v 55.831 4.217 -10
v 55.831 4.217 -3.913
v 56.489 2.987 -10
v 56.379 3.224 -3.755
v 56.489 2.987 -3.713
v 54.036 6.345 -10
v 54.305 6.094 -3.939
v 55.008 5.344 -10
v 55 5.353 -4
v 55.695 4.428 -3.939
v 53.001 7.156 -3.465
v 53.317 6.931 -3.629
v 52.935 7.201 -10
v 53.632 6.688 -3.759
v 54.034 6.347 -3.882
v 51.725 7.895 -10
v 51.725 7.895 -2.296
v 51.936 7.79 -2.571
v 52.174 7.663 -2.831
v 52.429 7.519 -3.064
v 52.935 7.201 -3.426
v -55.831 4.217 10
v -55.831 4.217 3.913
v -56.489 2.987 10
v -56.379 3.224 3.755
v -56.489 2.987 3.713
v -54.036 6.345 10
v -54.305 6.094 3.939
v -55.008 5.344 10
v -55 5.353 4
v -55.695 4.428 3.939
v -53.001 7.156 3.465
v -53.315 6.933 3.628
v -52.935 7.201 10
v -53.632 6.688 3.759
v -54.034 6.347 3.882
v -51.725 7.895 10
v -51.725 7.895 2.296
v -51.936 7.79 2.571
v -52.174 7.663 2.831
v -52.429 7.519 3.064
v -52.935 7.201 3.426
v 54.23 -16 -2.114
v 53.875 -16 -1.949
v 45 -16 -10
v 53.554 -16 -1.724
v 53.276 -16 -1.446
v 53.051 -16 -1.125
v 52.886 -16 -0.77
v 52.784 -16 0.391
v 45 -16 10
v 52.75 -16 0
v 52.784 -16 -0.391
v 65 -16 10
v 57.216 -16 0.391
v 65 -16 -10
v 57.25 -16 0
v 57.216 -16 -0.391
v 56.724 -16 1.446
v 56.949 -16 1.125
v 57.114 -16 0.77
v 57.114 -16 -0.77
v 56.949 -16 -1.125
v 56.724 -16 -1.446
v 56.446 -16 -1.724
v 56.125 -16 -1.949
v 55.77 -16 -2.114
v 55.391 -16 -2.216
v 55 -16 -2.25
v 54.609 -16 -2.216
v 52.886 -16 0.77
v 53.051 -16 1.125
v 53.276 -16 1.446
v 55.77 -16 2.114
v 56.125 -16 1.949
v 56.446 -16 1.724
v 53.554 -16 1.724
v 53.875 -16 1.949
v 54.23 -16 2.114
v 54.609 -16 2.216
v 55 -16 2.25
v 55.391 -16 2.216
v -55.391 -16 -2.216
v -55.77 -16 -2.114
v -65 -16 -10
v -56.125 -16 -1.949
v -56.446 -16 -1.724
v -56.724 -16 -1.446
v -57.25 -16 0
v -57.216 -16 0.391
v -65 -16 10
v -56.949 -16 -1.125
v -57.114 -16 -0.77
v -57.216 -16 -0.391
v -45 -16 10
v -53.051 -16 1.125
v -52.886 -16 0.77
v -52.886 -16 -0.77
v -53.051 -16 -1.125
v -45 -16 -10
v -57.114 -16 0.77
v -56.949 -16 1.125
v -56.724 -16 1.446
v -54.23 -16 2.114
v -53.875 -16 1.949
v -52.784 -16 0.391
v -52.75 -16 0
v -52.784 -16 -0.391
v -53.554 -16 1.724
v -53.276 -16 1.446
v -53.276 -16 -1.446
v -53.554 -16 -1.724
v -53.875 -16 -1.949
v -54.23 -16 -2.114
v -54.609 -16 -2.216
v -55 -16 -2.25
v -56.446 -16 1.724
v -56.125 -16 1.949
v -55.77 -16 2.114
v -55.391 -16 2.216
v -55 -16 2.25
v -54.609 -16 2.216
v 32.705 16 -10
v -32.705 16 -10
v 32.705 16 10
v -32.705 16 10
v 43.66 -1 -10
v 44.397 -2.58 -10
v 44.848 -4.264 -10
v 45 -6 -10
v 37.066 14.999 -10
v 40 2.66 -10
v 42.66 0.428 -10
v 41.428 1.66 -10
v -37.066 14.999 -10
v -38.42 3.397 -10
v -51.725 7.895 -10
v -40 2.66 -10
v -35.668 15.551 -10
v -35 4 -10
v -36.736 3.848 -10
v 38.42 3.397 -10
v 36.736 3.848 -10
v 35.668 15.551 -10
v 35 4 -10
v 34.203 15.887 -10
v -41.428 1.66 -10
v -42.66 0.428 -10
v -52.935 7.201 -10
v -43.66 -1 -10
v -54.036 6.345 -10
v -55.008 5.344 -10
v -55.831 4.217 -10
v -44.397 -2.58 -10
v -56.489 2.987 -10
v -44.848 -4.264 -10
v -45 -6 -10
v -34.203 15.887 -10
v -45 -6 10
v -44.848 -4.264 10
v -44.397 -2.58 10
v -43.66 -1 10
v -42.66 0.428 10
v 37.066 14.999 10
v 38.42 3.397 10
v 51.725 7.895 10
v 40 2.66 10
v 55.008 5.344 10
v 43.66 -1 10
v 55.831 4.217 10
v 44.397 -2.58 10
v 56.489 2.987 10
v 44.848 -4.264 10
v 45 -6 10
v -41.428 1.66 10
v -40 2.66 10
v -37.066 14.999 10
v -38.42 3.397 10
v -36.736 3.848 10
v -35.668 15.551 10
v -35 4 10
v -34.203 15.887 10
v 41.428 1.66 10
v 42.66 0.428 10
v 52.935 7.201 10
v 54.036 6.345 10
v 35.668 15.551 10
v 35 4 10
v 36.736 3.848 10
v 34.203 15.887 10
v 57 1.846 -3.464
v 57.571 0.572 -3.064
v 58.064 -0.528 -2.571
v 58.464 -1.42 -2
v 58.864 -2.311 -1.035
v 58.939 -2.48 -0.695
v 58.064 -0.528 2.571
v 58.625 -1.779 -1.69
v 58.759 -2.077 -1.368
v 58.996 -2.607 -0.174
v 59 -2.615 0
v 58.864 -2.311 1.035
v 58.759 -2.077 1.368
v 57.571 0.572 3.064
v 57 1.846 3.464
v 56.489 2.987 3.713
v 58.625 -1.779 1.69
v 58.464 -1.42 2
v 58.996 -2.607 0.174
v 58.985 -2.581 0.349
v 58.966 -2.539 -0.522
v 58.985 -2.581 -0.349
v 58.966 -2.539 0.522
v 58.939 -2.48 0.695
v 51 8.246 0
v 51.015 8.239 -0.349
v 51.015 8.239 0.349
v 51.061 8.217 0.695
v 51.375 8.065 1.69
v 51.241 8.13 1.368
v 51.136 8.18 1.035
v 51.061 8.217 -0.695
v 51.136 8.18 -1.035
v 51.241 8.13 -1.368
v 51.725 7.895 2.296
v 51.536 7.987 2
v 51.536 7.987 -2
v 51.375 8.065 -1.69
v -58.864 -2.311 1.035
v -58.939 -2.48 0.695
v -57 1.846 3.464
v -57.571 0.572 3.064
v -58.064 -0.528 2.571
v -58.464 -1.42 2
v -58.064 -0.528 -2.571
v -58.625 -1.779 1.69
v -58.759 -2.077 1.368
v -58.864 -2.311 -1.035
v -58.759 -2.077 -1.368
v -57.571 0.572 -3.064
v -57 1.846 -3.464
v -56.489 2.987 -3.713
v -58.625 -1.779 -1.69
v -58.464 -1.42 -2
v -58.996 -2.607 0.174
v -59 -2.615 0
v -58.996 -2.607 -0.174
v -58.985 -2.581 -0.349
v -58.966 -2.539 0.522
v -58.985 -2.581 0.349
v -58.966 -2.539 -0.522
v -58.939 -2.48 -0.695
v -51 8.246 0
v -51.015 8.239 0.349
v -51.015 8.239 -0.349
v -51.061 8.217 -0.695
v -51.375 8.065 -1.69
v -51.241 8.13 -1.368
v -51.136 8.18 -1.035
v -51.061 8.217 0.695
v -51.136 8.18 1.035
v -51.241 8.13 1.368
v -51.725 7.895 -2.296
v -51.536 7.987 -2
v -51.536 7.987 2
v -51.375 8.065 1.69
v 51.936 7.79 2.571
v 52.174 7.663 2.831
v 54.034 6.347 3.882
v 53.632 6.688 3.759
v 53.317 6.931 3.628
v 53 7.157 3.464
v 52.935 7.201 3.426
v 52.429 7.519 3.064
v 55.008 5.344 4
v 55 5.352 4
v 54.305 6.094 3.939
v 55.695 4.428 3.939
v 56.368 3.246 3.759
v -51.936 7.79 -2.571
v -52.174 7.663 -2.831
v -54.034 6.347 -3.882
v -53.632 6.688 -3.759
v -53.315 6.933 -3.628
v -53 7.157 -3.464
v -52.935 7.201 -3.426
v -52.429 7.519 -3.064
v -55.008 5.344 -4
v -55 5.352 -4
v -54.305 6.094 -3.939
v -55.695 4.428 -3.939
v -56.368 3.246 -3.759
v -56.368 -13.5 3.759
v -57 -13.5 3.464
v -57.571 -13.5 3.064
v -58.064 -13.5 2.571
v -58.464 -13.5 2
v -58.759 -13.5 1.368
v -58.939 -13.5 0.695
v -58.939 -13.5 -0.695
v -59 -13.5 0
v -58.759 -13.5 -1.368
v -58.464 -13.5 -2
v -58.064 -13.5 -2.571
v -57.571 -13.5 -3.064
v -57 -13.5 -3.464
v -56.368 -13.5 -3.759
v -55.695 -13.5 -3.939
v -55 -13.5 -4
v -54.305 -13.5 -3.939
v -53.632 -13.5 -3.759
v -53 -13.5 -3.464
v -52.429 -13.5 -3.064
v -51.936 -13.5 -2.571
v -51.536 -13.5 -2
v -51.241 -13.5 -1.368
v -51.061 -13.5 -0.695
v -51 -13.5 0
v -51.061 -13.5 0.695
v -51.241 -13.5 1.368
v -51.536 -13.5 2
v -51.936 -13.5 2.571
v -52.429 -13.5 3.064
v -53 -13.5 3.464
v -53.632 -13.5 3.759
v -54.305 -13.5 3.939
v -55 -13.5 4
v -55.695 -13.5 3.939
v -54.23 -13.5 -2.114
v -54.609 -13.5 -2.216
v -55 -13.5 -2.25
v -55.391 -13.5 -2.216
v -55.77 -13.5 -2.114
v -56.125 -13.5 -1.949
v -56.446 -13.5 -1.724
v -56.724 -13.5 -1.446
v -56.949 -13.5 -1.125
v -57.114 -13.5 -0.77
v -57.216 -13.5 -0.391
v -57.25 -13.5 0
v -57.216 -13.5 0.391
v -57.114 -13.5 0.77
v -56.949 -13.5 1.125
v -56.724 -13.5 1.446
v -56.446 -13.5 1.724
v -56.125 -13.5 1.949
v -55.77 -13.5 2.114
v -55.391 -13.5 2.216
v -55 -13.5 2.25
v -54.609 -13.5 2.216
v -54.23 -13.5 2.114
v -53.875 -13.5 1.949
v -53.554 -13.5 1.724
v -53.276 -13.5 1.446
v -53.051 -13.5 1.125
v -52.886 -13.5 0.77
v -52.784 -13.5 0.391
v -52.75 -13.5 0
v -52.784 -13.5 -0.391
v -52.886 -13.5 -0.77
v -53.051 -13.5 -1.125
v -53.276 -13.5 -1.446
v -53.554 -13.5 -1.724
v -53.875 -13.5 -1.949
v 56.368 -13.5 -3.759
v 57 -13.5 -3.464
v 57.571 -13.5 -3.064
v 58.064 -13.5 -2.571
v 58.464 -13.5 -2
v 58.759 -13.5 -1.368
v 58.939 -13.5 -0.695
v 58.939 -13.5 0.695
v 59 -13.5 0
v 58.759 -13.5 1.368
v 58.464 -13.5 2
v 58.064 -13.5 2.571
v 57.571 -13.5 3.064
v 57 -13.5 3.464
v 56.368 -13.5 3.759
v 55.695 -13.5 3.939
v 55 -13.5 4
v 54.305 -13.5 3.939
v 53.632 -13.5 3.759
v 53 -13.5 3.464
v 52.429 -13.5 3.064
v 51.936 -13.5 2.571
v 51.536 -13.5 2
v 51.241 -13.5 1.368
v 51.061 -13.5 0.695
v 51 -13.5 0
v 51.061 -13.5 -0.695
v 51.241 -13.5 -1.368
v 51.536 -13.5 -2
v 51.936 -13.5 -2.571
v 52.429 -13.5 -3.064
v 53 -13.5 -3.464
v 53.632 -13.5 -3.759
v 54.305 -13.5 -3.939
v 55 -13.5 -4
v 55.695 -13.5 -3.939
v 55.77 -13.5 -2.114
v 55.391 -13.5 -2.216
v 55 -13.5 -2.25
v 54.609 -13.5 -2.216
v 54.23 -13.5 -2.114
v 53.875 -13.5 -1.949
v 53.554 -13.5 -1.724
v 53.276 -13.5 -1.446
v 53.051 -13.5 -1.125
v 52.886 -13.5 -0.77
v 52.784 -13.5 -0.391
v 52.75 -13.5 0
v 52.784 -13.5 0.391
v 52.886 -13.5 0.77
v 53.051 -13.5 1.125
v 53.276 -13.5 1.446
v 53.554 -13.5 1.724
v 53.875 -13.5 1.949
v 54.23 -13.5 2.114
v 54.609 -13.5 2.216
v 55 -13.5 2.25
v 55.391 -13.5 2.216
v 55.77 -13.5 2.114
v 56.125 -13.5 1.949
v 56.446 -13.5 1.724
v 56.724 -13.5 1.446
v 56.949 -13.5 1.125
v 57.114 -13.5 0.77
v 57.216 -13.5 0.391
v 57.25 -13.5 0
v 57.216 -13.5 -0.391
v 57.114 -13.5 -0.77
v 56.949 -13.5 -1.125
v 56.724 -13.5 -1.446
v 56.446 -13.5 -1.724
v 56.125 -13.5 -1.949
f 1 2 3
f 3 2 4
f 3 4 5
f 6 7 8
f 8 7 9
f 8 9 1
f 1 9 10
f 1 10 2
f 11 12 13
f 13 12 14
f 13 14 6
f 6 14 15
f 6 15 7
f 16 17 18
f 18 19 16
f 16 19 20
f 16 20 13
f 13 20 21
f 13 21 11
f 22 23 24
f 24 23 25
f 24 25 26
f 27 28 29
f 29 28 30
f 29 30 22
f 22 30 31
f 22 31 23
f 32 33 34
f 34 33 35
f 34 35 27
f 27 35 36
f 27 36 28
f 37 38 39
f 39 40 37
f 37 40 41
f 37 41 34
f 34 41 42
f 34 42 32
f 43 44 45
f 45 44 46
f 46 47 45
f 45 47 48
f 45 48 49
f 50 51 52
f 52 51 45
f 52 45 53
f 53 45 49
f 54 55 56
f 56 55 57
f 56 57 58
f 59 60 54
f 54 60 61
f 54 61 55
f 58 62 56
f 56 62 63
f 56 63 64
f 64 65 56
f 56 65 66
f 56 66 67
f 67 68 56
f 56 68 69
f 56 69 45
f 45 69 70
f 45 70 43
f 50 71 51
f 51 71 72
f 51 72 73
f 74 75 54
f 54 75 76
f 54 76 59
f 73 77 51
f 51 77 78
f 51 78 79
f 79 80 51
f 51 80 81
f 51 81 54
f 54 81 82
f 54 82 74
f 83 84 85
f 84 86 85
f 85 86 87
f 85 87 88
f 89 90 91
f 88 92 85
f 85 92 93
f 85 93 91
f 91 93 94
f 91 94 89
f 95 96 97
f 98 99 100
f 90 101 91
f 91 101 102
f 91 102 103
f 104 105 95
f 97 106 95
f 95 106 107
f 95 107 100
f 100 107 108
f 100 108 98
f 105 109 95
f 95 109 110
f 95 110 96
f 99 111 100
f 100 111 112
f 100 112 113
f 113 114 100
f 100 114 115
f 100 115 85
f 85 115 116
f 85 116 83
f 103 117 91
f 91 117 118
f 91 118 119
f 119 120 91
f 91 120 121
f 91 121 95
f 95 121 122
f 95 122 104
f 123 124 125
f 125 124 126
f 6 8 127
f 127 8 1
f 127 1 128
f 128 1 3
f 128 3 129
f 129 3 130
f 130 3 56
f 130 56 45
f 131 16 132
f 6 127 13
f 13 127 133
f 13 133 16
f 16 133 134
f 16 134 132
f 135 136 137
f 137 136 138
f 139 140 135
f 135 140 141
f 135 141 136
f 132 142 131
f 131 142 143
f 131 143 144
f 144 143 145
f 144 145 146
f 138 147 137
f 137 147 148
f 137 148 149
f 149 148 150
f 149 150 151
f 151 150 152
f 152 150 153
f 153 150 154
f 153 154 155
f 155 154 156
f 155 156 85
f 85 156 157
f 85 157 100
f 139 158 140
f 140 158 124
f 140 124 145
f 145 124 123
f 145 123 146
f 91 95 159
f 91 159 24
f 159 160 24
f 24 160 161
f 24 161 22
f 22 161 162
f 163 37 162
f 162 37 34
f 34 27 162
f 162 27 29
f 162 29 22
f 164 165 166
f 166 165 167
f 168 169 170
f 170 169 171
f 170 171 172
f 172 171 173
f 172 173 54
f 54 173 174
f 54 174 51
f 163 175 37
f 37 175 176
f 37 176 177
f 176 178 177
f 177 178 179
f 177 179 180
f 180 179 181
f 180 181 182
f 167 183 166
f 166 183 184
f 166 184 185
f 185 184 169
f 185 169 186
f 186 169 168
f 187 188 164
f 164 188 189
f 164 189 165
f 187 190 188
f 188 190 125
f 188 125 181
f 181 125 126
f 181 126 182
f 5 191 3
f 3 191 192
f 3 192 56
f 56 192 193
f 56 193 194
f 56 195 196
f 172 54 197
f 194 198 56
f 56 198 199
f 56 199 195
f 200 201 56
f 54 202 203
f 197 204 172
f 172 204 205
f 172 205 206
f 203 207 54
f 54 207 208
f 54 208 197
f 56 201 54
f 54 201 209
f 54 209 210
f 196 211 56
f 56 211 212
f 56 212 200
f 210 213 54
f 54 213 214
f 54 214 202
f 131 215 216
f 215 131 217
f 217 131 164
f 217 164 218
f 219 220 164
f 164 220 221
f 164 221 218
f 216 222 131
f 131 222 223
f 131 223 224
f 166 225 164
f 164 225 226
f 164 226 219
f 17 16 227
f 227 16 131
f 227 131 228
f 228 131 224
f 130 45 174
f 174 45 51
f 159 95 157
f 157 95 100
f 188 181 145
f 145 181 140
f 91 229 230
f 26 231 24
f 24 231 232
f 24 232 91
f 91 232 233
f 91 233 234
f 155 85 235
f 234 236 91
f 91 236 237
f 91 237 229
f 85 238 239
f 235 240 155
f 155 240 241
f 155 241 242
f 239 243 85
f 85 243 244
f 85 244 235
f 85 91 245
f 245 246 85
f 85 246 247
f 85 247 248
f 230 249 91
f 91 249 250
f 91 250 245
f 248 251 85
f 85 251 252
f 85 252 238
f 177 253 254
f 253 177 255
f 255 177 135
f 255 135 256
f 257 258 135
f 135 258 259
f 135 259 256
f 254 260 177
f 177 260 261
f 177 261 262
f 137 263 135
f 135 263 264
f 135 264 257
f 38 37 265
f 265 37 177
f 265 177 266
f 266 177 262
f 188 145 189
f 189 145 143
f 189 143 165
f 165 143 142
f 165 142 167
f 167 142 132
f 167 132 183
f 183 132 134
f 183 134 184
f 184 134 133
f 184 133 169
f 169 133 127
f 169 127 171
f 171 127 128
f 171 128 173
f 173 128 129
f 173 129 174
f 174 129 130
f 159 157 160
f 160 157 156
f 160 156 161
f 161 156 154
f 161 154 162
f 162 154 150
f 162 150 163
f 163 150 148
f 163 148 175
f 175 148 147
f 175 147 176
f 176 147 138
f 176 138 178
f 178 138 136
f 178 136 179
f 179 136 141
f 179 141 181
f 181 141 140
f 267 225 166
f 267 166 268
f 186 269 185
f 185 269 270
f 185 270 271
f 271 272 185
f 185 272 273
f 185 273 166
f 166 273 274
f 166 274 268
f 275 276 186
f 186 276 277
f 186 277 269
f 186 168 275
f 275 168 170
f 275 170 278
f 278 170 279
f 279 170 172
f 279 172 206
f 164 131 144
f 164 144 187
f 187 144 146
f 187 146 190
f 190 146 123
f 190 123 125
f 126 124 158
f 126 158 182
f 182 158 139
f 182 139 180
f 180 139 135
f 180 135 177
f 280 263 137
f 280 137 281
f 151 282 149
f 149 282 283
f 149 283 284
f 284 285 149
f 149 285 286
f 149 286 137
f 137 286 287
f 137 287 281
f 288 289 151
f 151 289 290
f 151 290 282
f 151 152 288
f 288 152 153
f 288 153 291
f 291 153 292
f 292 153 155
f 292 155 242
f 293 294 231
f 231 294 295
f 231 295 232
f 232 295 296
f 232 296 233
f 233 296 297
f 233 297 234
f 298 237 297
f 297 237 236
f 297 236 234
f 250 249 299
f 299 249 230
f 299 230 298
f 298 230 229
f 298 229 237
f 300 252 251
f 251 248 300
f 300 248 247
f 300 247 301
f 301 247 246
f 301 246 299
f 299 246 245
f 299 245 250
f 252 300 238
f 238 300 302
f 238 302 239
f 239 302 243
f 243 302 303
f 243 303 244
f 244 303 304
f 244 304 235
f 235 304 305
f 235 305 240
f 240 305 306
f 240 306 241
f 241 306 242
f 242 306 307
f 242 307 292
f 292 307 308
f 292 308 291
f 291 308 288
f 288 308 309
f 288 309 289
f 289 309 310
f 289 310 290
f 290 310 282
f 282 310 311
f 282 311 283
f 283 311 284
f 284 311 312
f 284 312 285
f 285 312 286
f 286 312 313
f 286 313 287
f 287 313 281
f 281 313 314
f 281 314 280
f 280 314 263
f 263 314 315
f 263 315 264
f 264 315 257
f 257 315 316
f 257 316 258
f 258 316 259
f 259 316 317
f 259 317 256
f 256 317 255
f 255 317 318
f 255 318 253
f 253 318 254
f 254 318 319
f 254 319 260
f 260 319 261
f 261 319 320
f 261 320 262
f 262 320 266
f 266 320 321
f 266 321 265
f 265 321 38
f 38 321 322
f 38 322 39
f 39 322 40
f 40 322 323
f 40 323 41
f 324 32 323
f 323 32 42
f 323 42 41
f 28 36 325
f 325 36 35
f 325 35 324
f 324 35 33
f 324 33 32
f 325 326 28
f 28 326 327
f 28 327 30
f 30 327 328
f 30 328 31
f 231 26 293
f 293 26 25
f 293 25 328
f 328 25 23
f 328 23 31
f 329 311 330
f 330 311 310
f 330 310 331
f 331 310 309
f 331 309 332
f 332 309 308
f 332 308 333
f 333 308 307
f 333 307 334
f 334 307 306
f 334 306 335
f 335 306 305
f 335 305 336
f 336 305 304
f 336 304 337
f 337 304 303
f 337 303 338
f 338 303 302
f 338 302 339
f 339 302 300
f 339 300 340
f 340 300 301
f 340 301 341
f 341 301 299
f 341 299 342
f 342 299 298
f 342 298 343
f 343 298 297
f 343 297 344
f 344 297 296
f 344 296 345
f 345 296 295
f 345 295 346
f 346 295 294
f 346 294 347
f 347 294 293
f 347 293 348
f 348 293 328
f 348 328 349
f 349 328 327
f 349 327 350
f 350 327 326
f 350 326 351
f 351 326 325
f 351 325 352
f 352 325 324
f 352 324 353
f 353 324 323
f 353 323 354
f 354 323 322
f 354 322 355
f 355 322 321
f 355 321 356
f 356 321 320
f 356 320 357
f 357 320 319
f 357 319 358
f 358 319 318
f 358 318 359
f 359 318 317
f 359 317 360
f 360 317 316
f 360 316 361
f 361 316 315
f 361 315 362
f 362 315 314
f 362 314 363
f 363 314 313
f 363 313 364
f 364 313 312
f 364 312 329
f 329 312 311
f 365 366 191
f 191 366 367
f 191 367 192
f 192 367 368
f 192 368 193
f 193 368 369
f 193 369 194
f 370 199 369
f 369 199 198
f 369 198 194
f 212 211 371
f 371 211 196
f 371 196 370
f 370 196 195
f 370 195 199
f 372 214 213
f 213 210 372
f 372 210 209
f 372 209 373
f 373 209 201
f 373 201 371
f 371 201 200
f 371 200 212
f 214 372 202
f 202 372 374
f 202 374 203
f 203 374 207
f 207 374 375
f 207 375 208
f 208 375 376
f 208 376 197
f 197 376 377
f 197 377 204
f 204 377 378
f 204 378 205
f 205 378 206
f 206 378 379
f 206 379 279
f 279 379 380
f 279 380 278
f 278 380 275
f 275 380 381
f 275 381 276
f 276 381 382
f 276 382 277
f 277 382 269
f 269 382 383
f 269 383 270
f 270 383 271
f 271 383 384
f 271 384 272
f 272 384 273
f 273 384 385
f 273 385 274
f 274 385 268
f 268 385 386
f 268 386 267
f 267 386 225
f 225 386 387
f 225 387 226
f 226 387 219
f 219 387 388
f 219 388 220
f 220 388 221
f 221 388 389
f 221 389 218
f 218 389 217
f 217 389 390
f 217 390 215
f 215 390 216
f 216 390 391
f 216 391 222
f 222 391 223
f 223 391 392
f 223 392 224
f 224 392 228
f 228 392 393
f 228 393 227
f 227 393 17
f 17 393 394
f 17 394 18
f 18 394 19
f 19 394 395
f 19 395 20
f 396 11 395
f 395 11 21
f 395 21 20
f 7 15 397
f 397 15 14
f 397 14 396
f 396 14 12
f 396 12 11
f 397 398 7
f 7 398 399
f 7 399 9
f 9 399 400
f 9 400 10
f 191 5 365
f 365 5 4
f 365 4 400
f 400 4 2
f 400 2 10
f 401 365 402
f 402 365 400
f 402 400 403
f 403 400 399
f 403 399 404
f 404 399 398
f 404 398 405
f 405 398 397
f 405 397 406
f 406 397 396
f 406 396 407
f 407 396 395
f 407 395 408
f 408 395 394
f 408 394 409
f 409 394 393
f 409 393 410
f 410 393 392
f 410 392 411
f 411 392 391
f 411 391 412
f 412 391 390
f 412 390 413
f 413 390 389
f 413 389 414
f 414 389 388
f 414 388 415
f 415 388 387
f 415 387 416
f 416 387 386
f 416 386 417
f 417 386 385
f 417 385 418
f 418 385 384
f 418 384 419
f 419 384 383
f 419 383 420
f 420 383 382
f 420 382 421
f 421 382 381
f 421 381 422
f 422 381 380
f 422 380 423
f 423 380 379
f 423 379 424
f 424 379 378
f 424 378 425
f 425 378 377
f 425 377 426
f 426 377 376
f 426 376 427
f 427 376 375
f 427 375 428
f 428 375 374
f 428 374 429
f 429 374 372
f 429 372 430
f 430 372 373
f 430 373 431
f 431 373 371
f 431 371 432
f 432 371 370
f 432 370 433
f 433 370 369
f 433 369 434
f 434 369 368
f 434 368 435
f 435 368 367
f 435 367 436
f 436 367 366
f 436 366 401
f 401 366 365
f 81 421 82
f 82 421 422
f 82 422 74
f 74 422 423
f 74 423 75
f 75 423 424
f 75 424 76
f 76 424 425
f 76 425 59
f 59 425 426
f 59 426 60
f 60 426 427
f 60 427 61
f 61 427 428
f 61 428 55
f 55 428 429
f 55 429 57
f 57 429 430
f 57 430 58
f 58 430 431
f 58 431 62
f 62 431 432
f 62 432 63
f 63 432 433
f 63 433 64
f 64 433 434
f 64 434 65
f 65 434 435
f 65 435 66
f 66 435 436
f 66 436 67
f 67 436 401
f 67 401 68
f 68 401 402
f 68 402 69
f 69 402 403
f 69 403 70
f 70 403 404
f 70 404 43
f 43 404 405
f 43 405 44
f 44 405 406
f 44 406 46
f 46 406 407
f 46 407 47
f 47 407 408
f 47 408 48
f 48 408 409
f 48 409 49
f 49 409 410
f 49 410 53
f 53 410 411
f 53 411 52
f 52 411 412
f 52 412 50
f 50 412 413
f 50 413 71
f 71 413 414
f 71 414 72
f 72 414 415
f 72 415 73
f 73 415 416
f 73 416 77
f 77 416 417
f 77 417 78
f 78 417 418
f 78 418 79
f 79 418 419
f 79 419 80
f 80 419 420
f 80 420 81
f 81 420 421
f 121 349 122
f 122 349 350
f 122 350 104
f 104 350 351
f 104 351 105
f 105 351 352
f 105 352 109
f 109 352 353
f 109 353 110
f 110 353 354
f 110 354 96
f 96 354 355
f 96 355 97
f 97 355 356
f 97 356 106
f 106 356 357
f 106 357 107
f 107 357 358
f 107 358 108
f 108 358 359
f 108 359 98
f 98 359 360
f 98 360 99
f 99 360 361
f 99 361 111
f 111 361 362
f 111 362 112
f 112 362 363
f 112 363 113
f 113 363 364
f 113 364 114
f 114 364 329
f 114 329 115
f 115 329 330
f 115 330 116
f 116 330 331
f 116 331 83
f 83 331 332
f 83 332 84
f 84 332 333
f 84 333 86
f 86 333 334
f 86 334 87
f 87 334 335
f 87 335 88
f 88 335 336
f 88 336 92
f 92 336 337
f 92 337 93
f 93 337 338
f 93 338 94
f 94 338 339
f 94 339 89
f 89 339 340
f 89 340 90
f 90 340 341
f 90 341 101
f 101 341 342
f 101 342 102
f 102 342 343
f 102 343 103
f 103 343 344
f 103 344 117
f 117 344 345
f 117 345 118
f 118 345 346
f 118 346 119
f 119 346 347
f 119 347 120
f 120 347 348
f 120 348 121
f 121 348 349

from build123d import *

# Parameters (mm, degrees)
RESSALTO_EXTRUS_O1_DEPTH      = 10
RESSALTO_EXTRUS_O1_DEPTH_BACK = 10
ESBO_O1_W                     = 130
ESBO_O1_H                     = 32
ESBO_O2_W                     = 90
ESBO_O2_H                     = 20
CORTE_EXTRUS_O1_DEPTH         = 70.864153899
FILETE1_R                     = 10
ESBO_O4_R                     = 4
CORTE_EXTRUS_O2_DEPTH         = 29.5
ESBO_O5_R                     = 2.25
CORTE_EXTRUS_O3_DEPTH         = 74.136858027


with BuildPart() as part:
    # Esboço1 → Ressalto-extrusão1 (new, two sides: drawn at the far end of the back side and taken through both)
    with BuildSketch(Plane.XY.offset(-RESSALTO_EXTRUS_O1_DEPTH_BACK)):
        Rectangle(ESBO_O1_W, ESBO_O1_H)
    extrude(amount=RESSALTO_EXTRUS_O1_DEPTH + RESSALTO_EXTRUS_O1_DEPTH_BACK)

    # Esboço2 → Corte-extrusão1 (cut, through all)
    with BuildSketch(Plane.XY.offset(10)):
        Polygon((35, 16), (55, 6.308022976), (65, -16), (65, 16), align=None)
        Polygon((-65, -16), (-65, 16), (-35, 16), (-55, 6.308022976), align=None)
        with Locations((0, -6)):
            Rectangle(ESBO_O2_W, ESBO_O2_H)
    extrude(amount=-CORTE_EXTRUS_O1_DEPTH, mode=Mode.SUBTRACT)

    # Filete1
    filete1_edges = [part.edges().sort_by_distance(p)[0] for p in [
        (45, 4, 0),
        (-45, 4, 0),
        (55, 6.308022976, 0),
        (35, 16, 0),
        (-35, 16, 0),
        (-55, 6.308022976, 0),
    ]]
    fillet(filete1_edges, radius=FILETE1_R)

    # Esboço4 → Corte-extrusão2 (cut)
    with BuildSketch(Plane(origin=(0, 16, 0), x_dir=(1, 0, 0), z_dir=(0, 1, 0))):
        with Locations((-55, 0)):
            Circle(ESBO_O4_R)
        with Locations((55, 0)):
            Circle(ESBO_O4_R)
    extrude(amount=-CORTE_EXTRUS_O2_DEPTH, mode=Mode.SUBTRACT)

    # Esboço5 → Corte-extrusão3 (cut, through all)
    with BuildSketch(Plane(origin=(0, 16, 0), x_dir=(1, 0, 0), z_dir=(0, 1, 0))):
        with Locations((-55, 0)):
            Circle(ESBO_O5_R)
        with Locations((55, 0)):
            Circle(ESBO_O5_R)
    extrude(amount=-CORTE_EXTRUS_O3_DEPTH, mode=Mode.SUBTRACT)


solid = part.part
